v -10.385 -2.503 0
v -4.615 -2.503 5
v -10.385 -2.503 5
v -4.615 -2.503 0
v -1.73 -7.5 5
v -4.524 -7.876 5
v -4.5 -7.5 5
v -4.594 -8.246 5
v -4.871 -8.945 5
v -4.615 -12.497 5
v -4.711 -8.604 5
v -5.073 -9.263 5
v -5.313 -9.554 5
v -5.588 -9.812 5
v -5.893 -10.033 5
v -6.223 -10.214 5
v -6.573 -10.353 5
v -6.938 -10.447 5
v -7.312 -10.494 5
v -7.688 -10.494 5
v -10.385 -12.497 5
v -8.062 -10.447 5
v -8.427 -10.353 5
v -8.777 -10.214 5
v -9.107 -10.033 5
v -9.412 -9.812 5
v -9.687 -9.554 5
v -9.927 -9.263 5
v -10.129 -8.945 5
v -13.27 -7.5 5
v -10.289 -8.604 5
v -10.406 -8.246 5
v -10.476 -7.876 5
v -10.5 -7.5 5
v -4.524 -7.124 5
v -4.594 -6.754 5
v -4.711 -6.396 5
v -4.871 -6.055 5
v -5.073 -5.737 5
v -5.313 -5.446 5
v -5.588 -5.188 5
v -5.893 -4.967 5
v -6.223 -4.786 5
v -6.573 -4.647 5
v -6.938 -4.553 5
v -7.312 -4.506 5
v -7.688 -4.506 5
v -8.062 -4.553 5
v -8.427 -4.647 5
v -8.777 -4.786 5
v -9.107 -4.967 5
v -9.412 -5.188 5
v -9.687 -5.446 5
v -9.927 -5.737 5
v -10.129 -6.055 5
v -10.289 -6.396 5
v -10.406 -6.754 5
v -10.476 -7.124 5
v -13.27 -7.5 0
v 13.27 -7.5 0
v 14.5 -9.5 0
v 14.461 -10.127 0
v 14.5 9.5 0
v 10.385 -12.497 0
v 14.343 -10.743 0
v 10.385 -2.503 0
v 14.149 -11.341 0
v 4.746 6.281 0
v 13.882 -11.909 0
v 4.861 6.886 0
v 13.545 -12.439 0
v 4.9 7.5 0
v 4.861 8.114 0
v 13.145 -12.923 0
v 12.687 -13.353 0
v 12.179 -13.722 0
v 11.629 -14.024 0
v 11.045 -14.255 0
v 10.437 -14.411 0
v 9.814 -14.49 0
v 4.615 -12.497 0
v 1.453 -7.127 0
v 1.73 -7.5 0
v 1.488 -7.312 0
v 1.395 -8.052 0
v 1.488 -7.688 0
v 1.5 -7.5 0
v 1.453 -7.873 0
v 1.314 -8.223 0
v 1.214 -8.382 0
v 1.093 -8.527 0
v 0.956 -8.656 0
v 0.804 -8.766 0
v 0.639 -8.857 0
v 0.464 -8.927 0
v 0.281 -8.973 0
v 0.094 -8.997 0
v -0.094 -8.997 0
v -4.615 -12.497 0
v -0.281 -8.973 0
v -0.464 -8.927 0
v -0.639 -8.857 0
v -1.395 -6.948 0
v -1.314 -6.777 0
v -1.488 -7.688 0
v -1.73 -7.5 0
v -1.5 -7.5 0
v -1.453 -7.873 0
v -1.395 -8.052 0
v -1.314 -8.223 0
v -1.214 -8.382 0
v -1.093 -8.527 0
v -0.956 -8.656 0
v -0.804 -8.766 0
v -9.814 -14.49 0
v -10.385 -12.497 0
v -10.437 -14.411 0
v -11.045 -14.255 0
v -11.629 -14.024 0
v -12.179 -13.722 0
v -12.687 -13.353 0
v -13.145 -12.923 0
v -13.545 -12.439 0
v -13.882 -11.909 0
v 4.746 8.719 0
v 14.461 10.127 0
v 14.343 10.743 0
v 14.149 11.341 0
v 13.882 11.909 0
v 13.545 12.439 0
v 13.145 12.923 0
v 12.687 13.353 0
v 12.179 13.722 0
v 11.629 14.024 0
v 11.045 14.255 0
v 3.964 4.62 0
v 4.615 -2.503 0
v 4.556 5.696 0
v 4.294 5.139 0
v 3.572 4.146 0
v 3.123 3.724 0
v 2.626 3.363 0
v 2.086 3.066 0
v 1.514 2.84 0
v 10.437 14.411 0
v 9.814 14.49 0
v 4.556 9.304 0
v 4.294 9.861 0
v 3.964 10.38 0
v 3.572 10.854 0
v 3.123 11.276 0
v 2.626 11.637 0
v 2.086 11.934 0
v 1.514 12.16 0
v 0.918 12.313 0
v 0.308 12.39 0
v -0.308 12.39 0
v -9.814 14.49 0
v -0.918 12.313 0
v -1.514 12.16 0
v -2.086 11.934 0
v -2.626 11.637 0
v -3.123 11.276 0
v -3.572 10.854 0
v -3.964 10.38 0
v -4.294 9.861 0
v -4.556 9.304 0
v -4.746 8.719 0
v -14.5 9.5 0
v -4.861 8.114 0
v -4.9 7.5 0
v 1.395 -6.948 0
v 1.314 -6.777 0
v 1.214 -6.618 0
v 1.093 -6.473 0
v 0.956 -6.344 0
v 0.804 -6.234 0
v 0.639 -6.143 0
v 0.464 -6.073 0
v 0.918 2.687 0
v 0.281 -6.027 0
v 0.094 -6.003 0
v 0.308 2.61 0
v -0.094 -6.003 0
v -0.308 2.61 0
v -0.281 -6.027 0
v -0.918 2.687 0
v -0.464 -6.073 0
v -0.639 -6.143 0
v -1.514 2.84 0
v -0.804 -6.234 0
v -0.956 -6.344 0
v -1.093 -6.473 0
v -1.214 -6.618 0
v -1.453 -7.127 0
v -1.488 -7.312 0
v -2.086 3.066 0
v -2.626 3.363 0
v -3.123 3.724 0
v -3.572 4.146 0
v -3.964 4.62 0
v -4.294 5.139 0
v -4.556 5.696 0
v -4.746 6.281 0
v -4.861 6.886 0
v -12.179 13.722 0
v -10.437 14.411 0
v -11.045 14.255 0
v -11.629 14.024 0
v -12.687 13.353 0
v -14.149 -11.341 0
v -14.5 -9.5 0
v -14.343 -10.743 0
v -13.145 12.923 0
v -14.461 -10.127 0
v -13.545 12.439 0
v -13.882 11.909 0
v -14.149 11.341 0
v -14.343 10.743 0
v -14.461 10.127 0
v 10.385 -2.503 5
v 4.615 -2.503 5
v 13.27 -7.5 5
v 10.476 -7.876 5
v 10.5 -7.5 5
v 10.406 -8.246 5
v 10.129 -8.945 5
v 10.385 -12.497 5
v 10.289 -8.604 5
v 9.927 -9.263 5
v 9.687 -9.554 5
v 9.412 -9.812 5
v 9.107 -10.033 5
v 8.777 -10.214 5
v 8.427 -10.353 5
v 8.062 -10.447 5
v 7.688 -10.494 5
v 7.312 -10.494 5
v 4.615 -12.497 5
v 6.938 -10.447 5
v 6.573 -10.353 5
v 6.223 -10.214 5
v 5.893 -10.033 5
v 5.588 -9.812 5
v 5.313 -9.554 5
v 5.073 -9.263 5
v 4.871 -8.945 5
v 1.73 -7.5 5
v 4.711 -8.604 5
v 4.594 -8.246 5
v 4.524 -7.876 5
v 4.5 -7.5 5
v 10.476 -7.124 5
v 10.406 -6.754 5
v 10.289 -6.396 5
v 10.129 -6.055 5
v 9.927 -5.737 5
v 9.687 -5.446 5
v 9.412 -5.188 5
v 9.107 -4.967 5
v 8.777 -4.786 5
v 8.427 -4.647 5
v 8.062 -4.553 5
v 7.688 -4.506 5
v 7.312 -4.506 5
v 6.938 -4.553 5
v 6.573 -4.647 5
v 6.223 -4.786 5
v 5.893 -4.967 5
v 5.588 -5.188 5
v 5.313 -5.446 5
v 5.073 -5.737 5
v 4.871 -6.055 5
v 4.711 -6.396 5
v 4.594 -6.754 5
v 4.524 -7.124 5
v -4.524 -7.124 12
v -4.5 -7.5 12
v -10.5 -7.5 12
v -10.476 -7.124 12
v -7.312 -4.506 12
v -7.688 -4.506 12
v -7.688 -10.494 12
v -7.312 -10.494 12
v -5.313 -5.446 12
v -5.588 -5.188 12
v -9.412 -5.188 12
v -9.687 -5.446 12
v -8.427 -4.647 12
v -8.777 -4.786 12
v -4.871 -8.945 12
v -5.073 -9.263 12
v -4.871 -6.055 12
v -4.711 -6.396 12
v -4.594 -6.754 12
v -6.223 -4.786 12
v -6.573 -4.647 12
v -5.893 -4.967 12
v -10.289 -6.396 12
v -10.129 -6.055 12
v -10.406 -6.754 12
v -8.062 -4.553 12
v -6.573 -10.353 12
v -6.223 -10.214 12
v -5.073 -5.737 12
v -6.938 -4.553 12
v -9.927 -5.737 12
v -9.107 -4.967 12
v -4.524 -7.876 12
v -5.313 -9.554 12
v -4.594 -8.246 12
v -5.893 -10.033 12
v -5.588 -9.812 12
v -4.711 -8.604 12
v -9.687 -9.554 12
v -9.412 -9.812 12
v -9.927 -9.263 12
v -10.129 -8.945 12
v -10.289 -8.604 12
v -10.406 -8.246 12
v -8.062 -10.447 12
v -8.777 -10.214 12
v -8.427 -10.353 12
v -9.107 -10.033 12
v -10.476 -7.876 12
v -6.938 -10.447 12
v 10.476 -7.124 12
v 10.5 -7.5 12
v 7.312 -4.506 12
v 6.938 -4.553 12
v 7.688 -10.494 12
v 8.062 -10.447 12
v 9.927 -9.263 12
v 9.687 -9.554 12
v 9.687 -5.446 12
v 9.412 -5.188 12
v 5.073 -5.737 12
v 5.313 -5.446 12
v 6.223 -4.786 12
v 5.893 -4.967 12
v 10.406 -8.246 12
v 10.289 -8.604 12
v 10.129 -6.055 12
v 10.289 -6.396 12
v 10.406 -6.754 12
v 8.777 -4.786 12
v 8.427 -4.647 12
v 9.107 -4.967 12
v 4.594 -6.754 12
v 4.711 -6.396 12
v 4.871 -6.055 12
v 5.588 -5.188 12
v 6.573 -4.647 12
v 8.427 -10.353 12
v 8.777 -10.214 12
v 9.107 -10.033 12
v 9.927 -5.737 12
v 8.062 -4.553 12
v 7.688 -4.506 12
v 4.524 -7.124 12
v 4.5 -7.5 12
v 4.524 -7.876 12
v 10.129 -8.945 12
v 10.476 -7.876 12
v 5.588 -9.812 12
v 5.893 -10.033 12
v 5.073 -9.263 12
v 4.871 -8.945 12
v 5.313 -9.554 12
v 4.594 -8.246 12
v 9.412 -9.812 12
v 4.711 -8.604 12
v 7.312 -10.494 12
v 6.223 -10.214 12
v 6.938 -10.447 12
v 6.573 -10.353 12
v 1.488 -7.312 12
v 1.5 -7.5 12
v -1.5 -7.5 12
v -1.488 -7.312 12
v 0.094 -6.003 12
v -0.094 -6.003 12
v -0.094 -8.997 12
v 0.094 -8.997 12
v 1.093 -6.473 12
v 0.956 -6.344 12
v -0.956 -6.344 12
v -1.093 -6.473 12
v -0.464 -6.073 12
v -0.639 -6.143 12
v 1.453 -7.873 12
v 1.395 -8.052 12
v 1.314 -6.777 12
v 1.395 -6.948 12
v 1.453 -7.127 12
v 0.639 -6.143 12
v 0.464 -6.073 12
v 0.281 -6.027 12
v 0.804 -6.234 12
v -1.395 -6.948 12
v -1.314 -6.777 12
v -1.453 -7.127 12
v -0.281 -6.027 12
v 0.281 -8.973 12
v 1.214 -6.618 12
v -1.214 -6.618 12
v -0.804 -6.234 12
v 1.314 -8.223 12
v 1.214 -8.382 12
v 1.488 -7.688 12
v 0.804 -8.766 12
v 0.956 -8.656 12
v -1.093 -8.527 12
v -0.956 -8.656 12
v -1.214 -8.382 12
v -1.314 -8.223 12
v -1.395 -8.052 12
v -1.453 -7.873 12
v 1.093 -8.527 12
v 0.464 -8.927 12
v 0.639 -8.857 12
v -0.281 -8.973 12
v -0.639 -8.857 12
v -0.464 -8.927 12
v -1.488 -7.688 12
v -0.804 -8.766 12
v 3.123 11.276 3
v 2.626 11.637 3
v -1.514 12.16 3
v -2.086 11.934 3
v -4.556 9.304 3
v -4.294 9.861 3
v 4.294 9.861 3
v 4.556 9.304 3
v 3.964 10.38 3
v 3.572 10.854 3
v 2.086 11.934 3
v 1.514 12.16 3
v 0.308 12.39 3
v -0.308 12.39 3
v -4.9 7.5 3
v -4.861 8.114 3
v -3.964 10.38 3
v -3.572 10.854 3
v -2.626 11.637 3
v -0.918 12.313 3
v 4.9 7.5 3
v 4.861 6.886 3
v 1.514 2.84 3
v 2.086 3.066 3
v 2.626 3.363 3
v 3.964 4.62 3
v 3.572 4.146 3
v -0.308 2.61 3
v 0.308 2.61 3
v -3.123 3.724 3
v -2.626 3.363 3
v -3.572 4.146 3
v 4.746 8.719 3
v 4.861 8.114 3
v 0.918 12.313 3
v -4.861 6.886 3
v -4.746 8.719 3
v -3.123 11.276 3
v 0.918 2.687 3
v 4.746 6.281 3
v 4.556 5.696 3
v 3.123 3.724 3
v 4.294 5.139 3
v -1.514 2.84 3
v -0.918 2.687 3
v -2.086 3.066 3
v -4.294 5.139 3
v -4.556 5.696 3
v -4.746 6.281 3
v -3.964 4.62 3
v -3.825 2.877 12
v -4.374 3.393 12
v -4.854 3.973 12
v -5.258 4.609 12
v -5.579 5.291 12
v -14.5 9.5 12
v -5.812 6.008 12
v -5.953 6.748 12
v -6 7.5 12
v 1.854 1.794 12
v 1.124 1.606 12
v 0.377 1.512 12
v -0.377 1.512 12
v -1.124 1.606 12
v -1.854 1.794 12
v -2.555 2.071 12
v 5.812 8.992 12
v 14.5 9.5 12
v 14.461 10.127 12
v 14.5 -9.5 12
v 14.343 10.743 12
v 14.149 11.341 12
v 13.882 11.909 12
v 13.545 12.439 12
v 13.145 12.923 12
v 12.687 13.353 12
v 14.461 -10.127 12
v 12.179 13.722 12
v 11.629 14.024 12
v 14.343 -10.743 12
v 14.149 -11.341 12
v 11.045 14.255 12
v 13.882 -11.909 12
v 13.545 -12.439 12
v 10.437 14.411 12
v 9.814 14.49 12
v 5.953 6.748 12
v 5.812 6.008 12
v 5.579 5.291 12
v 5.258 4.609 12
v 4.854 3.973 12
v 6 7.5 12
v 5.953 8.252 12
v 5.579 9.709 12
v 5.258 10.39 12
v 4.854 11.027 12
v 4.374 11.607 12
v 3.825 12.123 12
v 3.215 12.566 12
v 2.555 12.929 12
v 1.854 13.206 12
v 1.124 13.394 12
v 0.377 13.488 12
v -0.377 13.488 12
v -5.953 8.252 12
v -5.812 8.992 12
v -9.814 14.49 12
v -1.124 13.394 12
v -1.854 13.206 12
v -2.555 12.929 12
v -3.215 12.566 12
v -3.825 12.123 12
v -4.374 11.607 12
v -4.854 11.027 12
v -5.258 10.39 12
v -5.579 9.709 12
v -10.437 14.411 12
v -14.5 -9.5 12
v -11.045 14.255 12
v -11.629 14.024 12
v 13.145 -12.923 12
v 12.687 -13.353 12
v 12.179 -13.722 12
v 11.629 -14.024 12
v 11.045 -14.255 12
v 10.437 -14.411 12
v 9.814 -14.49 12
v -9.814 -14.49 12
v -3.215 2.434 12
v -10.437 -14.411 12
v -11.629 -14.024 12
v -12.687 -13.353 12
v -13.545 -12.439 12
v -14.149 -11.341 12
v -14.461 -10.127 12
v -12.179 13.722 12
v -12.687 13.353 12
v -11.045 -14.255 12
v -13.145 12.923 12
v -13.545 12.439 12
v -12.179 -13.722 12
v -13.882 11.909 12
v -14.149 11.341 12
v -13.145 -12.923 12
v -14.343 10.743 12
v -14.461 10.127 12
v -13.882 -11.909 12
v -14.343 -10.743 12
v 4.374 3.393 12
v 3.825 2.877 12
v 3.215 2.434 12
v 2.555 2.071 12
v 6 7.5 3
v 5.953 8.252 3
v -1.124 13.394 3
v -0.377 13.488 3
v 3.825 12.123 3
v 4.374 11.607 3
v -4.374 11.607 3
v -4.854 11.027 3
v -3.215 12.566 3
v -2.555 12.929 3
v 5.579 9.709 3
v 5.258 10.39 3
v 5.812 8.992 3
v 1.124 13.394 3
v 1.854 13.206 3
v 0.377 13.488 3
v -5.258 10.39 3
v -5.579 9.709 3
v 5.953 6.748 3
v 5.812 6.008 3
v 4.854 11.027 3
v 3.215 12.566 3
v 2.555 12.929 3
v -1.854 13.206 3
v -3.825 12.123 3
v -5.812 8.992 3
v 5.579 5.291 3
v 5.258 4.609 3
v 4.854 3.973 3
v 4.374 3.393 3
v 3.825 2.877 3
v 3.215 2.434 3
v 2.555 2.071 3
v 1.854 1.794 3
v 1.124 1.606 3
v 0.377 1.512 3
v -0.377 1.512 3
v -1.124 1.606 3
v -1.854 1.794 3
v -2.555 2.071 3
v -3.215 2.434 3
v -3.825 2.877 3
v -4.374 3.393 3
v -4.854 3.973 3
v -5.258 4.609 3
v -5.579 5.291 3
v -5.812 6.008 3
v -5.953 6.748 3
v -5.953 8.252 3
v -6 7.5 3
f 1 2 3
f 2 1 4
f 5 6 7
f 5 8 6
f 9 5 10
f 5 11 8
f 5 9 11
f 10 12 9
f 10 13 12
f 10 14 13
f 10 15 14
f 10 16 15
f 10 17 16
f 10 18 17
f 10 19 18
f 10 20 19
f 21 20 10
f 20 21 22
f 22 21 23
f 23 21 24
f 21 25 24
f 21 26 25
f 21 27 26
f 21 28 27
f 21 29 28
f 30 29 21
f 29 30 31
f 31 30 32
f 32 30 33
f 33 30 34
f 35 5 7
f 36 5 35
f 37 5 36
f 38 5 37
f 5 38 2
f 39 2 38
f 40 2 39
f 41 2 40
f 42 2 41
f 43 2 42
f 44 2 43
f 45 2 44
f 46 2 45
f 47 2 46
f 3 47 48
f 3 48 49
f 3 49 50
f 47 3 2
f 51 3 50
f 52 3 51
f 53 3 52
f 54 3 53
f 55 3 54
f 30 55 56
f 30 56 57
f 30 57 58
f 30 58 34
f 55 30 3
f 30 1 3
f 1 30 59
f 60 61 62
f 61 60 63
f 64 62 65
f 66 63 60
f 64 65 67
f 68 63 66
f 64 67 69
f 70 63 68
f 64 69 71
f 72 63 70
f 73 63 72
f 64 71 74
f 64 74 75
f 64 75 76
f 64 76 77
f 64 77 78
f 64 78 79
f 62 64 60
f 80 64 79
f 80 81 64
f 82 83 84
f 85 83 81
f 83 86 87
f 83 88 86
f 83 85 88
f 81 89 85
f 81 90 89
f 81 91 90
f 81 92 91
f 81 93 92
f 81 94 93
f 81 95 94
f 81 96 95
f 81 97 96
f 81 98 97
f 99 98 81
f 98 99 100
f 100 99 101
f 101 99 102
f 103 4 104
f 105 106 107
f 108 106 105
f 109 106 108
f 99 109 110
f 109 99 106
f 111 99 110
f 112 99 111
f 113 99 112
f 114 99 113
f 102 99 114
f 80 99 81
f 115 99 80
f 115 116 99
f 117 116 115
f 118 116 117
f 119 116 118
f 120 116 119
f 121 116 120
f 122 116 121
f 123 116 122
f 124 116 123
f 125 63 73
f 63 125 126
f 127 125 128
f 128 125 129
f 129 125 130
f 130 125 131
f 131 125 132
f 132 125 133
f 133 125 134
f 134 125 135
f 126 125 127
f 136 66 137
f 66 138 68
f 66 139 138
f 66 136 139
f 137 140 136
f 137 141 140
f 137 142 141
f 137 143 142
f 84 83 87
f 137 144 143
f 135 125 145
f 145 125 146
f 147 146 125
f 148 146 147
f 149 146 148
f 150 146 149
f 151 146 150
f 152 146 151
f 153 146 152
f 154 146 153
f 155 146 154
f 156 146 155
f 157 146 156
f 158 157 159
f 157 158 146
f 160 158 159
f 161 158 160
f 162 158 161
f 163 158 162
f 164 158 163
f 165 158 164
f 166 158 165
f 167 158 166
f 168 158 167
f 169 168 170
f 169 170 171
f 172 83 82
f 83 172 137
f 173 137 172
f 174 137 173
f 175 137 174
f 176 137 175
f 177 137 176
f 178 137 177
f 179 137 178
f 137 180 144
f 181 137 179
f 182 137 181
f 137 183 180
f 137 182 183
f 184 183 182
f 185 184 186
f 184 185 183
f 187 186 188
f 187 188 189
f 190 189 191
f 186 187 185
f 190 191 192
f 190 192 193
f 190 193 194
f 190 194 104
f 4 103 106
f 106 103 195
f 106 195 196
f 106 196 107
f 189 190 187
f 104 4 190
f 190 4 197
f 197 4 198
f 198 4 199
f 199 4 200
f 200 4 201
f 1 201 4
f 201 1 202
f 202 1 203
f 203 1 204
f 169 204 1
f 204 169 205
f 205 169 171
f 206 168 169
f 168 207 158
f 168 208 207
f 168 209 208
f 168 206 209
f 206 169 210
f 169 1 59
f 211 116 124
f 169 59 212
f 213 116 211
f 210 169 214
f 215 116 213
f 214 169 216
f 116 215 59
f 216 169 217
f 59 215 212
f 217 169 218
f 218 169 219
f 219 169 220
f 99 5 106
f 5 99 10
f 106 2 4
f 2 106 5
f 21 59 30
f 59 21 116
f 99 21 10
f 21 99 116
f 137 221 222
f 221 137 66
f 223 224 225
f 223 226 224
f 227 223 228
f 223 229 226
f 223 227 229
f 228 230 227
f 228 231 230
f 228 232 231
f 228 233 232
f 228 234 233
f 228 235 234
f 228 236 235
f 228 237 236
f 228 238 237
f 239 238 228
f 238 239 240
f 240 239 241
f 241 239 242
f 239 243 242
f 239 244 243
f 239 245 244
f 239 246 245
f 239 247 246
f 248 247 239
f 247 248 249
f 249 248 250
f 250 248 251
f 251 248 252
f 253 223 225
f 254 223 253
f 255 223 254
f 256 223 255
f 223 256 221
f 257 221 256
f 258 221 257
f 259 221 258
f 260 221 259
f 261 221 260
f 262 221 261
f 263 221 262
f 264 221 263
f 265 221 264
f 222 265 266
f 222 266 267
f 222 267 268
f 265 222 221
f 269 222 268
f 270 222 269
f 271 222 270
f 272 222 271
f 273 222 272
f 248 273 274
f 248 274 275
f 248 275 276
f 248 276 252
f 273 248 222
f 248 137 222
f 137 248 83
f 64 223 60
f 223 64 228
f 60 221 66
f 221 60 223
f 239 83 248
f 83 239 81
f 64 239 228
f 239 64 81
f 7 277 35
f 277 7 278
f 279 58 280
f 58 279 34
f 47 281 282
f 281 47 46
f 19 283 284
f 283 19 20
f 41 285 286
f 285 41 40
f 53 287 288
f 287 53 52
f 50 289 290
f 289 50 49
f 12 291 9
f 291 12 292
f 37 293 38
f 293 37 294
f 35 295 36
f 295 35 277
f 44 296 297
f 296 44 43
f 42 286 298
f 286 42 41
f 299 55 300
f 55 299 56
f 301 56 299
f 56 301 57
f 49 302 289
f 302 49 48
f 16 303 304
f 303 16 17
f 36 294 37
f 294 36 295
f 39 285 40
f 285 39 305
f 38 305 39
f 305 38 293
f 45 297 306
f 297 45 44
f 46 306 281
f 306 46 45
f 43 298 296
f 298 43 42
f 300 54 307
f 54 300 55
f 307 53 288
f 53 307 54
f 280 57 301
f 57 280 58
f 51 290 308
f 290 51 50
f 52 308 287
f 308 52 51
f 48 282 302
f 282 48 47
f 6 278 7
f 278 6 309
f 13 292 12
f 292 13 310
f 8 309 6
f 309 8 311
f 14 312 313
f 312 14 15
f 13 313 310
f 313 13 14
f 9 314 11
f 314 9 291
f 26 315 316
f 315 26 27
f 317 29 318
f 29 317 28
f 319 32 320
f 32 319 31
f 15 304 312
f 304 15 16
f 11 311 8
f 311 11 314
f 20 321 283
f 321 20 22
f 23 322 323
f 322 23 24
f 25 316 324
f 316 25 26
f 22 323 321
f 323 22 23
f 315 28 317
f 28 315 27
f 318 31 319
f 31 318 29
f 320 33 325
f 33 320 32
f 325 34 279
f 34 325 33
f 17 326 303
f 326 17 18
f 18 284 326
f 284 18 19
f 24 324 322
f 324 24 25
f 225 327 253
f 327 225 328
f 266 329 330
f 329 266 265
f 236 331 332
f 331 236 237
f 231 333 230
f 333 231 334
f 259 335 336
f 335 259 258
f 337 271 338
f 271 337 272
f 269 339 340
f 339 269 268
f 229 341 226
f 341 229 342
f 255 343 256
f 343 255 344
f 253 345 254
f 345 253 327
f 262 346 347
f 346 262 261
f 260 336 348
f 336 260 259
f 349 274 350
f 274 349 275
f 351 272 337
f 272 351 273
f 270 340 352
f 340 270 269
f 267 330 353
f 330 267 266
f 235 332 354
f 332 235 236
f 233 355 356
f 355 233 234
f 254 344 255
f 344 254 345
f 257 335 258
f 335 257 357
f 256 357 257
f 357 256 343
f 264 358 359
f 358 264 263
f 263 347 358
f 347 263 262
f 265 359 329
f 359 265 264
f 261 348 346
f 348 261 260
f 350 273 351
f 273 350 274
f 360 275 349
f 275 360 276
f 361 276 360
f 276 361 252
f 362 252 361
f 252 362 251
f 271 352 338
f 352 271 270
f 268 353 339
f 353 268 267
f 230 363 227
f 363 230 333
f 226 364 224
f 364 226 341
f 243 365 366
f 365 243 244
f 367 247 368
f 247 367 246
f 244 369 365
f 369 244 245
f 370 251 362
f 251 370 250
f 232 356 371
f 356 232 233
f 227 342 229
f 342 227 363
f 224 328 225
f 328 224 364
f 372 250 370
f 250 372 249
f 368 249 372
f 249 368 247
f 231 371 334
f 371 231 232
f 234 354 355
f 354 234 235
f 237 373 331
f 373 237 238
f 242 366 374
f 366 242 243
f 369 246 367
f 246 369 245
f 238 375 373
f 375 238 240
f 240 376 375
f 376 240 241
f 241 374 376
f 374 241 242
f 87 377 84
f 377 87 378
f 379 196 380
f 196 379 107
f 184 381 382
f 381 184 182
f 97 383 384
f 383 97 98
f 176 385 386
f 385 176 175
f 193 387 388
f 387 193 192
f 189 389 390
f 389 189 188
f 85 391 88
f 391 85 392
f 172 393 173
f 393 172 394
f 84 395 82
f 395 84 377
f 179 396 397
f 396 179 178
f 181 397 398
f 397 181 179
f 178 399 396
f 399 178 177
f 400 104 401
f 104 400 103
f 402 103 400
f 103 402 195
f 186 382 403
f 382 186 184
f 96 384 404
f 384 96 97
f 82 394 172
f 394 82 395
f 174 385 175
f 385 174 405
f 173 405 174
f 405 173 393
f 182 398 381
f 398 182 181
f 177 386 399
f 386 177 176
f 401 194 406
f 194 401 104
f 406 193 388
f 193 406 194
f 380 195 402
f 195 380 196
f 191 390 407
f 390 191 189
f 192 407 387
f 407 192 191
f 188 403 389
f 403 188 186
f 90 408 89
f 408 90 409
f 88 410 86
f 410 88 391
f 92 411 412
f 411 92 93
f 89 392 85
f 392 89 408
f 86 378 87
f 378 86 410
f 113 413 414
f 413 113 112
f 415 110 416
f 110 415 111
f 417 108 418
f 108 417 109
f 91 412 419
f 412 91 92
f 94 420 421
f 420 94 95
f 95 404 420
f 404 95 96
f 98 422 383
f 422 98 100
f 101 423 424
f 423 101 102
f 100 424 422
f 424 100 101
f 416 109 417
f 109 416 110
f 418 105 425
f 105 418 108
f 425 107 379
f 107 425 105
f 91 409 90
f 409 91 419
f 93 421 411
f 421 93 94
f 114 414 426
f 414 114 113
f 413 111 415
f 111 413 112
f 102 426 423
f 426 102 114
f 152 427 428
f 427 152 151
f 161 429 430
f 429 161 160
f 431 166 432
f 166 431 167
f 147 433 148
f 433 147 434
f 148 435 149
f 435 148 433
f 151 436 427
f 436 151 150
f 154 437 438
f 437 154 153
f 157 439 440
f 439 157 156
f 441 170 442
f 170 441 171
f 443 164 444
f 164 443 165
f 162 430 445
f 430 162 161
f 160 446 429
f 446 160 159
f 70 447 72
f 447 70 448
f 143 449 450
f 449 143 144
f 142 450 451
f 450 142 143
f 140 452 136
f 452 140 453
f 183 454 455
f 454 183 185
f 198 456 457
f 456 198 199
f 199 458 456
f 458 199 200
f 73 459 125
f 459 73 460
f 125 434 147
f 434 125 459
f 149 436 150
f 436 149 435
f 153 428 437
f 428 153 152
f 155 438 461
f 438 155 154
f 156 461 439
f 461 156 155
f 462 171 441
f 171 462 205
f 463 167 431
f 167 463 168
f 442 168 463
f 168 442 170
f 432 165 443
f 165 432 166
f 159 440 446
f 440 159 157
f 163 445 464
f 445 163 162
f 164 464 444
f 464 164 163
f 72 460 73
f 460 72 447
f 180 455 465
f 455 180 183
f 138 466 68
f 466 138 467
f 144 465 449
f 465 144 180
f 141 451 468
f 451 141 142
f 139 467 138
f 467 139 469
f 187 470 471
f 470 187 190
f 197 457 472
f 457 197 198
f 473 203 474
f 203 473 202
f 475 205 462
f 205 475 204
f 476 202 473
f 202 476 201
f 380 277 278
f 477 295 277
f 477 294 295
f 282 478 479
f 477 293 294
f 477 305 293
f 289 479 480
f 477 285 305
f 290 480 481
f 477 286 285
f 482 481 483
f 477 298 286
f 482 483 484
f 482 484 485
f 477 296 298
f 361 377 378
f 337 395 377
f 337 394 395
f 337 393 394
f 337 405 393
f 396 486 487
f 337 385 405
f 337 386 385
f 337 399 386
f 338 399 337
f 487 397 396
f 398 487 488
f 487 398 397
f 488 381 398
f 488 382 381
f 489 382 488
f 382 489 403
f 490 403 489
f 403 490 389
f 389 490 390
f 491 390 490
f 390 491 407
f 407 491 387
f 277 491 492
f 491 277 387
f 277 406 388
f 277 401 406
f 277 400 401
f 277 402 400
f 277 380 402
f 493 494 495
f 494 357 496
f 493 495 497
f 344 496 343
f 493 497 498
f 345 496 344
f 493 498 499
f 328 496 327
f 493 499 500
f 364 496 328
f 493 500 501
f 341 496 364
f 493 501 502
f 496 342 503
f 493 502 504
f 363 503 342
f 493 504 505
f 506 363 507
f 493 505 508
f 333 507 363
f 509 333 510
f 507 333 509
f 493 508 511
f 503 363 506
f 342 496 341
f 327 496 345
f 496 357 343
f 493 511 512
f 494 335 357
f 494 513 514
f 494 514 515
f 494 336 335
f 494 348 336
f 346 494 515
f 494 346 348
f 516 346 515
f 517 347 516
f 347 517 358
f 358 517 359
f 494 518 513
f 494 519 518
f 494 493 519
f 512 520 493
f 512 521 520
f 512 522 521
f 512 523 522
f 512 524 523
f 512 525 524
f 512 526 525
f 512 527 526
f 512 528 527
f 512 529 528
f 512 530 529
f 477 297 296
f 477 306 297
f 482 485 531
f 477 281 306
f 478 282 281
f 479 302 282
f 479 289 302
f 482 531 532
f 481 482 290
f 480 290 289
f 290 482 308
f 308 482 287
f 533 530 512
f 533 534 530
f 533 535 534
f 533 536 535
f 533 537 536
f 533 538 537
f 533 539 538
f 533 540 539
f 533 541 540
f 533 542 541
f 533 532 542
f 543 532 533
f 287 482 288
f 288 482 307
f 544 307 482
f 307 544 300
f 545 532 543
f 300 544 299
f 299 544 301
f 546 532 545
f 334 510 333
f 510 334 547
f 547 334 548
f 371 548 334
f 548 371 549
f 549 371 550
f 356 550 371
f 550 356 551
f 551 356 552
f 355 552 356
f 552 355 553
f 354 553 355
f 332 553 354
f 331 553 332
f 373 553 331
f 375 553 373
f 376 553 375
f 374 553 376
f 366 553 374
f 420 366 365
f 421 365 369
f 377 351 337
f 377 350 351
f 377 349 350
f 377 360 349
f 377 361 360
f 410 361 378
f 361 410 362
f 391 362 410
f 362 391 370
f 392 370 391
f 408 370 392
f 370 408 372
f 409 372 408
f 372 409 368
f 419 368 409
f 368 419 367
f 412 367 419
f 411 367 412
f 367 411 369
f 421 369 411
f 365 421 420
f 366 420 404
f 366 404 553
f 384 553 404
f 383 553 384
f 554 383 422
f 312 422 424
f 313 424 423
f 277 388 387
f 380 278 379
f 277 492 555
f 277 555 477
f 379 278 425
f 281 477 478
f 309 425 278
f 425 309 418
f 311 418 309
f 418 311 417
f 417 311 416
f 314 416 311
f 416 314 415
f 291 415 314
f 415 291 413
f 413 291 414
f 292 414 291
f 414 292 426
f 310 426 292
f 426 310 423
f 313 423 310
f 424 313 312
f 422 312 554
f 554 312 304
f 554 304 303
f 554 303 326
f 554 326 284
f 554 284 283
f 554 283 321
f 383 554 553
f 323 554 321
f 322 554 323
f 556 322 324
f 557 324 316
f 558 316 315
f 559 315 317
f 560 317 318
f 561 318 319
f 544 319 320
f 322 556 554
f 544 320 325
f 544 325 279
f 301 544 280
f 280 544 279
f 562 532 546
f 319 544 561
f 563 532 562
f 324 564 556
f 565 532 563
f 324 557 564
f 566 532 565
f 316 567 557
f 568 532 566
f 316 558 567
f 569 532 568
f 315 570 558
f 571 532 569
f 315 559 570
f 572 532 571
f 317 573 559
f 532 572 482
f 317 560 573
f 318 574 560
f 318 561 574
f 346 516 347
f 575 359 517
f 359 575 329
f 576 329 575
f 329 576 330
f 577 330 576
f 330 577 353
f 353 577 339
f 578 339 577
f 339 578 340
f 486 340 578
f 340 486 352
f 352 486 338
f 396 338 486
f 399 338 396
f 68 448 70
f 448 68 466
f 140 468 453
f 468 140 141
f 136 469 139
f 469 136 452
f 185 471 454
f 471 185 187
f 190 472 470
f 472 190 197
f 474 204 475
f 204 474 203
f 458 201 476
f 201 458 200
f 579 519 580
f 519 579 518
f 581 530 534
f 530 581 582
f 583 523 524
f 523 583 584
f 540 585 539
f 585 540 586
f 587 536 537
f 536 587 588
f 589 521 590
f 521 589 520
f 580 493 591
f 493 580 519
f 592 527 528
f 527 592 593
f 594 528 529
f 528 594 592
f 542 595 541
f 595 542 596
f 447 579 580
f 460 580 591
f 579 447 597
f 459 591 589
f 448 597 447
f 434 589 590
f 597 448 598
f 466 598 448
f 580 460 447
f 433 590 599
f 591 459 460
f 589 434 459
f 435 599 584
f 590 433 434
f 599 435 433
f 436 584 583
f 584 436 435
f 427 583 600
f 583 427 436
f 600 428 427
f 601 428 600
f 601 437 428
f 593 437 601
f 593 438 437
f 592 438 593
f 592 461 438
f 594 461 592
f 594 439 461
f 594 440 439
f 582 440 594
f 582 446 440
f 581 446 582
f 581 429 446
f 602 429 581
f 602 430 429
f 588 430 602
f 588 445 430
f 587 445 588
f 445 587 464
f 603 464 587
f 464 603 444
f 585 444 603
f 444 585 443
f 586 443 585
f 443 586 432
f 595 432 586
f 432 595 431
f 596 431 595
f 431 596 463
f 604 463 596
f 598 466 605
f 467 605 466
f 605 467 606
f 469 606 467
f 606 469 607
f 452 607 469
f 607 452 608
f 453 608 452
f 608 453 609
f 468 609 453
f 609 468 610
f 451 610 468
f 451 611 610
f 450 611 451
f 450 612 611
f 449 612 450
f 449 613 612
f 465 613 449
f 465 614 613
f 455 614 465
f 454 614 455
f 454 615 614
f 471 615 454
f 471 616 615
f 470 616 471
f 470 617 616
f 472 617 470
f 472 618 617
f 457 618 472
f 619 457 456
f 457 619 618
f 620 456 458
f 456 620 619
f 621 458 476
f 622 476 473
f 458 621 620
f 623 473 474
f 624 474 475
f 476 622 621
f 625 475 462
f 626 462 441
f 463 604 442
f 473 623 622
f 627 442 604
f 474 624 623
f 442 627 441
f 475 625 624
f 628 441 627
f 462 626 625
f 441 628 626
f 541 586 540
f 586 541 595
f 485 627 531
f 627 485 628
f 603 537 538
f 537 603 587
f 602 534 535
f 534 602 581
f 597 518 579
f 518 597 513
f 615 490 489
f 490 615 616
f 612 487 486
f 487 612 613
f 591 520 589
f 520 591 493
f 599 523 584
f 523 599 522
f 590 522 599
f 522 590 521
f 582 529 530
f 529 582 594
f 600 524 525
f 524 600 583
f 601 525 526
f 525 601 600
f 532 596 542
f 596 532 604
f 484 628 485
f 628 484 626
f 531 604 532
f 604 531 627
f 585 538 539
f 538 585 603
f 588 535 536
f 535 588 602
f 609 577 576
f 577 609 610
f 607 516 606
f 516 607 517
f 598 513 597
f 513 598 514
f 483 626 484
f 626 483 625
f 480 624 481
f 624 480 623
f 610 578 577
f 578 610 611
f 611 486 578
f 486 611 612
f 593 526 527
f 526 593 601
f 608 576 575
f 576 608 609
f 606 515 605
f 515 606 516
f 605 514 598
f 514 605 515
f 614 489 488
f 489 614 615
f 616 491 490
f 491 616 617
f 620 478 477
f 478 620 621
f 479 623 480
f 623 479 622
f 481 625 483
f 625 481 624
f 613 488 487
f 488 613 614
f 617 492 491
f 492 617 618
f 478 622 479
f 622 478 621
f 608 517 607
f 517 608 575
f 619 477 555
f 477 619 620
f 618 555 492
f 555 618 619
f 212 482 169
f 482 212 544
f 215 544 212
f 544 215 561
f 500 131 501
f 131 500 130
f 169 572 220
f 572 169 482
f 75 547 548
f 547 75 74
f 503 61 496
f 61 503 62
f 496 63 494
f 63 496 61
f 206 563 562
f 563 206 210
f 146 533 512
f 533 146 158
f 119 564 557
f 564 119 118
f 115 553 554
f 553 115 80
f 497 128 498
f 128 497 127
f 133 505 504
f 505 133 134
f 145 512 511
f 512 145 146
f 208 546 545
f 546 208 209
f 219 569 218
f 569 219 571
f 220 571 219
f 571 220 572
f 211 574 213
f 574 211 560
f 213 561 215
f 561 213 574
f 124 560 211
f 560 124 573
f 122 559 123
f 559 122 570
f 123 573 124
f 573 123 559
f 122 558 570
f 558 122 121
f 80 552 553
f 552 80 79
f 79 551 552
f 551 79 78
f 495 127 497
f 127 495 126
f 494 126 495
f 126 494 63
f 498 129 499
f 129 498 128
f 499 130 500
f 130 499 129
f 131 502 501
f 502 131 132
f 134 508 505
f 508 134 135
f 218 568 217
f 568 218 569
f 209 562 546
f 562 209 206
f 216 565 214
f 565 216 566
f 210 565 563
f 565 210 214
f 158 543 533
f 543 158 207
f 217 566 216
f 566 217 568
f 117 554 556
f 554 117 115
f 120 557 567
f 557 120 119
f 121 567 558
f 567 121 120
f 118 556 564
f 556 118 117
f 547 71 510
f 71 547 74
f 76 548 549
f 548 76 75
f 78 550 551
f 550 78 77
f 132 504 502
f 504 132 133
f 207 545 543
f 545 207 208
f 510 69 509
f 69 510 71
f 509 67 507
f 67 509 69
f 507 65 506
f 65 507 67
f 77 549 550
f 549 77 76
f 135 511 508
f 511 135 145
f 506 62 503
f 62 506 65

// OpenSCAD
$fn = 50;


difference() {
	union() {
		hull() {
			translate(v = [-9.5000000000, 9.5000000000, 0]) {
				cylinder(h = 12, r = 5);
			}
			translate(v = [9.5000000000, 9.5000000000, 0]) {
				cylinder(h = 12, r = 5);
			}
			translate(v = [-9.5000000000, -9.5000000000, 0]) {
				cylinder(h = 12, r = 5);
			}
			translate(v = [9.5000000000, -9.5000000000, 0]) {
				cylinder(h = 12, r = 5);
			}
		}
	}
	union() {
		translate(v = [-7.5000000000, -7.5000000000, 0]) {
			rotate(a = [0, 0, 0]) {
				difference() {
					union() {
						#linear_extrude(height = 5) {
							polygon(points = [[5.7700000000, 0.0000000000], [2.8850000000, 4.9969665798], [-2.8850000000, 4.9969665798], [-5.7700000000, 0.0000000000], [-2.8850000000, -4.9969665798], [2.8850000000, -4.9969665798]]);
						}
					}
					union();
				}
			}
		}
		translate(v = [7.5000000000, -7.5000000000, 0]) {
			rotate(a = [0, 0, 0]) {
				difference() {
					union() {
						#linear_extrude(height = 5) {
							polygon(points = [[5.7700000000, 0.0000000000], [2.8850000000, 4.9969665798], [-2.8850000000, 4.9969665798], [-5.7700000000, 0.0000000000], [-2.8850000000, -4.9969665798], [2.8850000000, -4.9969665798]]);
						}
					}
					union();
				}
			}
		}
		translate(v = [-7.5000000000, -7.5000000000, -100.0000000000]) {
			cylinder(h = 200, r = 3.0000000000);
		}
		translate(v = [7.5000000000, -7.5000000000, -100.0000000000]) {
			cylinder(h = 200, r = 3.0000000000);
		}
		translate(v = [-7.5000000000, -7.5000000000, -100.0000000000]) {
			cylinder(h = 200, r = 1.5000000000);
		}
		translate(v = [0.0000000000, -7.5000000000, -100.0000000000]) {
			cylinder(h = 200, r = 1.5000000000);
		}
		translate(v = [7.5000000000, -7.5000000000, -100.0000000000]) {
			cylinder(h = 200, r = 1.5000000000);
		}
		translate(v = [-7.5000000000, -7.5000000000, -100.0000000000]) {
			cylinder(h = 200, r = 1.5000000000);
		}
		translate(v = [0.0000000000, -7.5000000000, -100.0000000000]) {
			cylinder(h = 200, r = 1.5000000000);
		}
		translate(v = [7.5000000000, -7.5000000000, -100.0000000000]) {
			cylinder(h = 200, r = 1.5000000000);
		}
		translate(v = [-7.5000000000, -7.5000000000, -100.0000000000]) {
			cylinder(h = 200, r = 1.5000000000);
		}
		translate(v = [0.0000000000, -7.5000000000, -100.0000000000]) {
			cylinder(h = 200, r = 1.5000000000);
		}
		translate(v = [7.5000000000, -7.5000000000, -100.0000000000]) {
			cylinder(h = 200, r = 1.5000000000);
		}
		#translate(v = [0, 7.5000000000, 0]) {
			cylinder(h = 12, r = 4.9000000000);
		}
		#translate(v = [0, 7.5000000000, 3]) {
			cylinder(h = 9, r = 6.0000000000);
		}
	}
}
